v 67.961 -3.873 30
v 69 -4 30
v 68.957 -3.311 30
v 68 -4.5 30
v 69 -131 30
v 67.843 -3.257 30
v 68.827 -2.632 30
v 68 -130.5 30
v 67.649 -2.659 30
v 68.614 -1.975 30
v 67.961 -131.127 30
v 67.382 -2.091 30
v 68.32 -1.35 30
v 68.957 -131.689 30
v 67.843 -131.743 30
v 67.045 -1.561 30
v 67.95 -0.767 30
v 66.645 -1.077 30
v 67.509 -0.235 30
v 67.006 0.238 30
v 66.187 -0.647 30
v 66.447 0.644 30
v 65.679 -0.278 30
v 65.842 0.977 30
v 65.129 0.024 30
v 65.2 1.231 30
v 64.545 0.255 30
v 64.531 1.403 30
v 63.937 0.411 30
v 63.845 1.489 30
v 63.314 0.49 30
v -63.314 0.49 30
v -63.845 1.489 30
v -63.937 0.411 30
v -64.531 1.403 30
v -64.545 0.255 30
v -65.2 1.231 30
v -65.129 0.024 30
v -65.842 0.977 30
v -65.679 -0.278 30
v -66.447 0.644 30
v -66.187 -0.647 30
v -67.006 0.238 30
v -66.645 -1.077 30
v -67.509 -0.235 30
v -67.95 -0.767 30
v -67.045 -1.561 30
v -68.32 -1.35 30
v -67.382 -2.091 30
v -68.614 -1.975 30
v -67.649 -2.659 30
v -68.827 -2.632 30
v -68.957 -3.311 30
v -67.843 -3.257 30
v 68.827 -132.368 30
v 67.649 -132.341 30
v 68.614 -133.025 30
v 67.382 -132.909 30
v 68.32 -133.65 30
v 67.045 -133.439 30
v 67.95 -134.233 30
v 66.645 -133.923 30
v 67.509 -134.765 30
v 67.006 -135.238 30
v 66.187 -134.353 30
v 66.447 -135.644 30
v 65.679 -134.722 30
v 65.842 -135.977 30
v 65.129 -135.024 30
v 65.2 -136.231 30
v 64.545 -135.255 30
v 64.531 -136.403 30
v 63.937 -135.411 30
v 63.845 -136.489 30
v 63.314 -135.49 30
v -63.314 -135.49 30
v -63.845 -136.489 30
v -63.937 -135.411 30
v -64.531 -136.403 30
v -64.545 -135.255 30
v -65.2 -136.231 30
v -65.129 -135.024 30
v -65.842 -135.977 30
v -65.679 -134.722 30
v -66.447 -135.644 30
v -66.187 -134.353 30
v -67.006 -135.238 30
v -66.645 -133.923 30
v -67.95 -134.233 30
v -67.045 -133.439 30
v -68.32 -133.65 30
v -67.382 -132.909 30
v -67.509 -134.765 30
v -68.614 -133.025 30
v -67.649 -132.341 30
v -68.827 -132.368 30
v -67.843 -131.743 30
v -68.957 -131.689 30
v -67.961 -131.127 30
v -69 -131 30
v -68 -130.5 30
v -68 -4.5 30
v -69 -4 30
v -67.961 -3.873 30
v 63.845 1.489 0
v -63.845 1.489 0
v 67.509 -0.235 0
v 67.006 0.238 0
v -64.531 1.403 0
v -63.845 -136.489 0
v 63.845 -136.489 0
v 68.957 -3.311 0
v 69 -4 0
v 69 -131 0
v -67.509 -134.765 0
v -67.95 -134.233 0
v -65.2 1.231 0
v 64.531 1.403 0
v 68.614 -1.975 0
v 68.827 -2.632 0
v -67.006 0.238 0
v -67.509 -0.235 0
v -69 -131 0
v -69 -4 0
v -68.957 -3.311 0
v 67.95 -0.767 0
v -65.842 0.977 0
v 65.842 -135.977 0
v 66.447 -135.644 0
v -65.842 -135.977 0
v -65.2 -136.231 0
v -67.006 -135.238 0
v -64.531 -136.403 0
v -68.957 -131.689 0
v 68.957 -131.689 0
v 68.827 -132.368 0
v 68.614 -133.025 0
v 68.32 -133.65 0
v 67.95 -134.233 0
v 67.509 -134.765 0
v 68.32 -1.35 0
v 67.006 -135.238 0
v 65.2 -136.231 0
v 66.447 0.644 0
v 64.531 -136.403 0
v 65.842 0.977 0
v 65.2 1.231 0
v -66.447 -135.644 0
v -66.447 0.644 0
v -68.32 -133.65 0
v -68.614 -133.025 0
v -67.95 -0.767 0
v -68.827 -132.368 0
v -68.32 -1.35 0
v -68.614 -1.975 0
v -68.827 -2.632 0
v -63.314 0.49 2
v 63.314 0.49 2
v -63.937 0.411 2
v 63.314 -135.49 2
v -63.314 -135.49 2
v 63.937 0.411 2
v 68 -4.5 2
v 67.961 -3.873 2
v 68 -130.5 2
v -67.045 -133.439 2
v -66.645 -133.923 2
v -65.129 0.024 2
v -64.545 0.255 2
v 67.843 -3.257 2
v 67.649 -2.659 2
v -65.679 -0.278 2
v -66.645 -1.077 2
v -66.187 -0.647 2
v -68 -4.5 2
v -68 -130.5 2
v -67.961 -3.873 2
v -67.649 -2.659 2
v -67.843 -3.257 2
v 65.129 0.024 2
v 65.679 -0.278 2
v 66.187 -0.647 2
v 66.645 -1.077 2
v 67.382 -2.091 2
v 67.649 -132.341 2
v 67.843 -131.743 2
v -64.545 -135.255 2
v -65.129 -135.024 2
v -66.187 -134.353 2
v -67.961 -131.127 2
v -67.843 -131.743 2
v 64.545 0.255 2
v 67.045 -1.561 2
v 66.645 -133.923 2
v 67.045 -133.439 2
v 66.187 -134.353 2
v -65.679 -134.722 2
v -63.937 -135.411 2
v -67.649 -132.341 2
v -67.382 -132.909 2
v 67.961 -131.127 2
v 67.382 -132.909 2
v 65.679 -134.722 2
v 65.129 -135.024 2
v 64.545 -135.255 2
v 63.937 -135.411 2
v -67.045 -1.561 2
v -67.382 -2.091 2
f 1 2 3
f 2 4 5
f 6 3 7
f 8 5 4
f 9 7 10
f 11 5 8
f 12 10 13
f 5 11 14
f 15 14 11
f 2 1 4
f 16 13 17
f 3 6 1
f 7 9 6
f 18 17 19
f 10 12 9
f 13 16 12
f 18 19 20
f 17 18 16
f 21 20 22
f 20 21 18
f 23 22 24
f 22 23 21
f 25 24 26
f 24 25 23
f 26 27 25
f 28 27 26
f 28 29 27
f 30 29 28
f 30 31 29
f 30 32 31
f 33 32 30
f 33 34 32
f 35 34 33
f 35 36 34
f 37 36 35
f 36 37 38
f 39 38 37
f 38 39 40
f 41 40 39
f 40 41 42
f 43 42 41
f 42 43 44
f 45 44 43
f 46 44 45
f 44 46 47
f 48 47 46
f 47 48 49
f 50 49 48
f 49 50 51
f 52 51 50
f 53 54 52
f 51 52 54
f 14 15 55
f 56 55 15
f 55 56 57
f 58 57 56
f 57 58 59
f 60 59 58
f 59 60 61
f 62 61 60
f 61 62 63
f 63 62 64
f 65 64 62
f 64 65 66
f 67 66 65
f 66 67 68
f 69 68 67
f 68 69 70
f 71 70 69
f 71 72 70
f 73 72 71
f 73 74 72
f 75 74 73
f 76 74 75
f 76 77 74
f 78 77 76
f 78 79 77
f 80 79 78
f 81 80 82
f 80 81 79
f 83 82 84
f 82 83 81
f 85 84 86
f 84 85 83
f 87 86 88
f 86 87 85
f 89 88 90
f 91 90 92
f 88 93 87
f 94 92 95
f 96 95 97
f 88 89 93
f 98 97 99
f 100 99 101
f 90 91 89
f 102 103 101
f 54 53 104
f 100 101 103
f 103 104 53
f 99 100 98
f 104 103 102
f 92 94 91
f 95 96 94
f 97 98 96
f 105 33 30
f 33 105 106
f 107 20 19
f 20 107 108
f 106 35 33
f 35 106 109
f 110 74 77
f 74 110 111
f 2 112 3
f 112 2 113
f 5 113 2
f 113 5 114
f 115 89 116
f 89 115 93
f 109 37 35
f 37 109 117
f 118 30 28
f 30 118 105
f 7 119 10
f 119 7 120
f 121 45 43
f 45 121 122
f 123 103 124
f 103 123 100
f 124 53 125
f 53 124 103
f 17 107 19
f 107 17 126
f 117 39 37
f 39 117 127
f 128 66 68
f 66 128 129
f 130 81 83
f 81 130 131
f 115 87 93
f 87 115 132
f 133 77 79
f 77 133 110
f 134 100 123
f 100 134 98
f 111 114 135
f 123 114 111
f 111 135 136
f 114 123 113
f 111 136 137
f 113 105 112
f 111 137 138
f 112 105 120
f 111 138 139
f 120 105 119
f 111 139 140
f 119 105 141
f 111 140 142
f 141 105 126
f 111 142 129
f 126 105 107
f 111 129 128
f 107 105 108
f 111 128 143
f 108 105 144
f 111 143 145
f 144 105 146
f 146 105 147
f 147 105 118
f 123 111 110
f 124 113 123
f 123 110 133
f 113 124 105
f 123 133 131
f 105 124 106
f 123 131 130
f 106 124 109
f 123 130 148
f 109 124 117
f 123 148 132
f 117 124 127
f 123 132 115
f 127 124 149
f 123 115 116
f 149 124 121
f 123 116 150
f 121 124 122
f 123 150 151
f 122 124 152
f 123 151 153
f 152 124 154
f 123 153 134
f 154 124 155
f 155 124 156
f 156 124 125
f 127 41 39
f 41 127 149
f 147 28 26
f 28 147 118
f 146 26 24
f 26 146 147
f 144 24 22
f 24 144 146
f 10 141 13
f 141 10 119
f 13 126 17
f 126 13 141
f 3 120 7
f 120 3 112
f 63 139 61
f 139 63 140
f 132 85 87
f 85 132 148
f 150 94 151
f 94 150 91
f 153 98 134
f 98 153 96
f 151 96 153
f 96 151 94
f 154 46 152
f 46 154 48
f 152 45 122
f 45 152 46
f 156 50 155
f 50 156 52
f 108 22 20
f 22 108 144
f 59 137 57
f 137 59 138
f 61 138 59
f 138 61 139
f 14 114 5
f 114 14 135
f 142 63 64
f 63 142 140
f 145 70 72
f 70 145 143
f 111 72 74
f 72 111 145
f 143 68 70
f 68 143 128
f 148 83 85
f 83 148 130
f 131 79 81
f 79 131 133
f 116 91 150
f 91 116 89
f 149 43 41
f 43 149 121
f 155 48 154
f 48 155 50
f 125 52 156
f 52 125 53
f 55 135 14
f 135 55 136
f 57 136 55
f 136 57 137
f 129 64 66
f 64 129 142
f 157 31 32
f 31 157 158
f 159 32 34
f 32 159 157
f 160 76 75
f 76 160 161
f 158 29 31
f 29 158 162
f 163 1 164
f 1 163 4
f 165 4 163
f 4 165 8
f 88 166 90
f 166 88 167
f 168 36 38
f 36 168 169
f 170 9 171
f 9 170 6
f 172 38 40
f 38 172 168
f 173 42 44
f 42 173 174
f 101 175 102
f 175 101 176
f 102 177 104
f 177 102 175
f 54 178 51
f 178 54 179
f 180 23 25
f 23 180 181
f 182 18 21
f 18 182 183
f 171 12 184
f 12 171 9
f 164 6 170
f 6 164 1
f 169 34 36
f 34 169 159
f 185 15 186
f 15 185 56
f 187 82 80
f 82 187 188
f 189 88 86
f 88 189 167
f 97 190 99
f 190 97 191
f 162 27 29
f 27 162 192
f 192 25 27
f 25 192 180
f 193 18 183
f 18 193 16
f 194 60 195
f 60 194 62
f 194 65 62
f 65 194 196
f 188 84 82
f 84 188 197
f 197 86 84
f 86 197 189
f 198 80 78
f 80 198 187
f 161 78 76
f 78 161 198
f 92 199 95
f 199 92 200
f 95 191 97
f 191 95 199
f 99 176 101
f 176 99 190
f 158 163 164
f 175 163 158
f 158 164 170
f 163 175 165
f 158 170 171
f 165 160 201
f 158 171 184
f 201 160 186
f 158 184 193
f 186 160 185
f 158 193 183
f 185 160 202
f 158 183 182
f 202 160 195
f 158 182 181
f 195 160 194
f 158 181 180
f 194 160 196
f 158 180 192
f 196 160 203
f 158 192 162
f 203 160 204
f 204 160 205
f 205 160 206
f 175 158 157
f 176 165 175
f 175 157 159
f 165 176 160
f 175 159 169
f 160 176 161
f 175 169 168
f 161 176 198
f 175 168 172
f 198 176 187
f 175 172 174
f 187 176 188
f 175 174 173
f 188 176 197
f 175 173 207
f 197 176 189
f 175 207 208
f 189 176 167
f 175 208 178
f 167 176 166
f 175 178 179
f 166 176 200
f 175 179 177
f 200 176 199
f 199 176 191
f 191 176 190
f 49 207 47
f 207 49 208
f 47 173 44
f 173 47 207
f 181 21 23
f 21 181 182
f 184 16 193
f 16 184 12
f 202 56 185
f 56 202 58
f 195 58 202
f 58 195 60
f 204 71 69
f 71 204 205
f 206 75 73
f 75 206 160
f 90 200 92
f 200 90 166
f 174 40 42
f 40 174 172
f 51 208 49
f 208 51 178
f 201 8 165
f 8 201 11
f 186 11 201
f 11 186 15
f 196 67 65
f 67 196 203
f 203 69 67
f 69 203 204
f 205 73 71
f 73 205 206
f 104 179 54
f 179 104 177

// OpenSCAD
$fn = 50;


difference() {
	union() {
		translate(v = [0, -67.5000000000, 0]) {
			hull() {
				translate(v = [-63.5000000000, 63.5000000000, 0]) {
					cylinder(h = 30, r = 5.5000000000);
				}
				translate(v = [63.5000000000, 63.5000000000, 0]) {
					cylinder(h = 30, r = 5.5000000000);
				}
				translate(v = [-63.5000000000, -63.5000000000, 0]) {
					cylinder(h = 30, r = 5.5000000000);
				}
				translate(v = [63.5000000000, -63.5000000000, 0]) {
					cylinder(h = 30, r = 5.5000000000);
				}
			}
		}
	}
	union() {
		translate(v = [0, -67.5000000000, 2]) {
			hull() {
				translate(v = [-63.0000000000, 63.0000000000, 0]) {
					cylinder(h = 60, r = 5);
				}
				translate(v = [63.0000000000, 63.0000000000, 0]) {
					cylinder(h = 60, r = 5);
				}
				translate(v = [-63.0000000000, -63.0000000000, 0]) {
					cylinder(h = 60, r = 5);
				}
				translate(v = [63.0000000000, -63.0000000000, 0]) {
					cylinder(h = 60, r = 5);
				}
			}
		}
	}
}
